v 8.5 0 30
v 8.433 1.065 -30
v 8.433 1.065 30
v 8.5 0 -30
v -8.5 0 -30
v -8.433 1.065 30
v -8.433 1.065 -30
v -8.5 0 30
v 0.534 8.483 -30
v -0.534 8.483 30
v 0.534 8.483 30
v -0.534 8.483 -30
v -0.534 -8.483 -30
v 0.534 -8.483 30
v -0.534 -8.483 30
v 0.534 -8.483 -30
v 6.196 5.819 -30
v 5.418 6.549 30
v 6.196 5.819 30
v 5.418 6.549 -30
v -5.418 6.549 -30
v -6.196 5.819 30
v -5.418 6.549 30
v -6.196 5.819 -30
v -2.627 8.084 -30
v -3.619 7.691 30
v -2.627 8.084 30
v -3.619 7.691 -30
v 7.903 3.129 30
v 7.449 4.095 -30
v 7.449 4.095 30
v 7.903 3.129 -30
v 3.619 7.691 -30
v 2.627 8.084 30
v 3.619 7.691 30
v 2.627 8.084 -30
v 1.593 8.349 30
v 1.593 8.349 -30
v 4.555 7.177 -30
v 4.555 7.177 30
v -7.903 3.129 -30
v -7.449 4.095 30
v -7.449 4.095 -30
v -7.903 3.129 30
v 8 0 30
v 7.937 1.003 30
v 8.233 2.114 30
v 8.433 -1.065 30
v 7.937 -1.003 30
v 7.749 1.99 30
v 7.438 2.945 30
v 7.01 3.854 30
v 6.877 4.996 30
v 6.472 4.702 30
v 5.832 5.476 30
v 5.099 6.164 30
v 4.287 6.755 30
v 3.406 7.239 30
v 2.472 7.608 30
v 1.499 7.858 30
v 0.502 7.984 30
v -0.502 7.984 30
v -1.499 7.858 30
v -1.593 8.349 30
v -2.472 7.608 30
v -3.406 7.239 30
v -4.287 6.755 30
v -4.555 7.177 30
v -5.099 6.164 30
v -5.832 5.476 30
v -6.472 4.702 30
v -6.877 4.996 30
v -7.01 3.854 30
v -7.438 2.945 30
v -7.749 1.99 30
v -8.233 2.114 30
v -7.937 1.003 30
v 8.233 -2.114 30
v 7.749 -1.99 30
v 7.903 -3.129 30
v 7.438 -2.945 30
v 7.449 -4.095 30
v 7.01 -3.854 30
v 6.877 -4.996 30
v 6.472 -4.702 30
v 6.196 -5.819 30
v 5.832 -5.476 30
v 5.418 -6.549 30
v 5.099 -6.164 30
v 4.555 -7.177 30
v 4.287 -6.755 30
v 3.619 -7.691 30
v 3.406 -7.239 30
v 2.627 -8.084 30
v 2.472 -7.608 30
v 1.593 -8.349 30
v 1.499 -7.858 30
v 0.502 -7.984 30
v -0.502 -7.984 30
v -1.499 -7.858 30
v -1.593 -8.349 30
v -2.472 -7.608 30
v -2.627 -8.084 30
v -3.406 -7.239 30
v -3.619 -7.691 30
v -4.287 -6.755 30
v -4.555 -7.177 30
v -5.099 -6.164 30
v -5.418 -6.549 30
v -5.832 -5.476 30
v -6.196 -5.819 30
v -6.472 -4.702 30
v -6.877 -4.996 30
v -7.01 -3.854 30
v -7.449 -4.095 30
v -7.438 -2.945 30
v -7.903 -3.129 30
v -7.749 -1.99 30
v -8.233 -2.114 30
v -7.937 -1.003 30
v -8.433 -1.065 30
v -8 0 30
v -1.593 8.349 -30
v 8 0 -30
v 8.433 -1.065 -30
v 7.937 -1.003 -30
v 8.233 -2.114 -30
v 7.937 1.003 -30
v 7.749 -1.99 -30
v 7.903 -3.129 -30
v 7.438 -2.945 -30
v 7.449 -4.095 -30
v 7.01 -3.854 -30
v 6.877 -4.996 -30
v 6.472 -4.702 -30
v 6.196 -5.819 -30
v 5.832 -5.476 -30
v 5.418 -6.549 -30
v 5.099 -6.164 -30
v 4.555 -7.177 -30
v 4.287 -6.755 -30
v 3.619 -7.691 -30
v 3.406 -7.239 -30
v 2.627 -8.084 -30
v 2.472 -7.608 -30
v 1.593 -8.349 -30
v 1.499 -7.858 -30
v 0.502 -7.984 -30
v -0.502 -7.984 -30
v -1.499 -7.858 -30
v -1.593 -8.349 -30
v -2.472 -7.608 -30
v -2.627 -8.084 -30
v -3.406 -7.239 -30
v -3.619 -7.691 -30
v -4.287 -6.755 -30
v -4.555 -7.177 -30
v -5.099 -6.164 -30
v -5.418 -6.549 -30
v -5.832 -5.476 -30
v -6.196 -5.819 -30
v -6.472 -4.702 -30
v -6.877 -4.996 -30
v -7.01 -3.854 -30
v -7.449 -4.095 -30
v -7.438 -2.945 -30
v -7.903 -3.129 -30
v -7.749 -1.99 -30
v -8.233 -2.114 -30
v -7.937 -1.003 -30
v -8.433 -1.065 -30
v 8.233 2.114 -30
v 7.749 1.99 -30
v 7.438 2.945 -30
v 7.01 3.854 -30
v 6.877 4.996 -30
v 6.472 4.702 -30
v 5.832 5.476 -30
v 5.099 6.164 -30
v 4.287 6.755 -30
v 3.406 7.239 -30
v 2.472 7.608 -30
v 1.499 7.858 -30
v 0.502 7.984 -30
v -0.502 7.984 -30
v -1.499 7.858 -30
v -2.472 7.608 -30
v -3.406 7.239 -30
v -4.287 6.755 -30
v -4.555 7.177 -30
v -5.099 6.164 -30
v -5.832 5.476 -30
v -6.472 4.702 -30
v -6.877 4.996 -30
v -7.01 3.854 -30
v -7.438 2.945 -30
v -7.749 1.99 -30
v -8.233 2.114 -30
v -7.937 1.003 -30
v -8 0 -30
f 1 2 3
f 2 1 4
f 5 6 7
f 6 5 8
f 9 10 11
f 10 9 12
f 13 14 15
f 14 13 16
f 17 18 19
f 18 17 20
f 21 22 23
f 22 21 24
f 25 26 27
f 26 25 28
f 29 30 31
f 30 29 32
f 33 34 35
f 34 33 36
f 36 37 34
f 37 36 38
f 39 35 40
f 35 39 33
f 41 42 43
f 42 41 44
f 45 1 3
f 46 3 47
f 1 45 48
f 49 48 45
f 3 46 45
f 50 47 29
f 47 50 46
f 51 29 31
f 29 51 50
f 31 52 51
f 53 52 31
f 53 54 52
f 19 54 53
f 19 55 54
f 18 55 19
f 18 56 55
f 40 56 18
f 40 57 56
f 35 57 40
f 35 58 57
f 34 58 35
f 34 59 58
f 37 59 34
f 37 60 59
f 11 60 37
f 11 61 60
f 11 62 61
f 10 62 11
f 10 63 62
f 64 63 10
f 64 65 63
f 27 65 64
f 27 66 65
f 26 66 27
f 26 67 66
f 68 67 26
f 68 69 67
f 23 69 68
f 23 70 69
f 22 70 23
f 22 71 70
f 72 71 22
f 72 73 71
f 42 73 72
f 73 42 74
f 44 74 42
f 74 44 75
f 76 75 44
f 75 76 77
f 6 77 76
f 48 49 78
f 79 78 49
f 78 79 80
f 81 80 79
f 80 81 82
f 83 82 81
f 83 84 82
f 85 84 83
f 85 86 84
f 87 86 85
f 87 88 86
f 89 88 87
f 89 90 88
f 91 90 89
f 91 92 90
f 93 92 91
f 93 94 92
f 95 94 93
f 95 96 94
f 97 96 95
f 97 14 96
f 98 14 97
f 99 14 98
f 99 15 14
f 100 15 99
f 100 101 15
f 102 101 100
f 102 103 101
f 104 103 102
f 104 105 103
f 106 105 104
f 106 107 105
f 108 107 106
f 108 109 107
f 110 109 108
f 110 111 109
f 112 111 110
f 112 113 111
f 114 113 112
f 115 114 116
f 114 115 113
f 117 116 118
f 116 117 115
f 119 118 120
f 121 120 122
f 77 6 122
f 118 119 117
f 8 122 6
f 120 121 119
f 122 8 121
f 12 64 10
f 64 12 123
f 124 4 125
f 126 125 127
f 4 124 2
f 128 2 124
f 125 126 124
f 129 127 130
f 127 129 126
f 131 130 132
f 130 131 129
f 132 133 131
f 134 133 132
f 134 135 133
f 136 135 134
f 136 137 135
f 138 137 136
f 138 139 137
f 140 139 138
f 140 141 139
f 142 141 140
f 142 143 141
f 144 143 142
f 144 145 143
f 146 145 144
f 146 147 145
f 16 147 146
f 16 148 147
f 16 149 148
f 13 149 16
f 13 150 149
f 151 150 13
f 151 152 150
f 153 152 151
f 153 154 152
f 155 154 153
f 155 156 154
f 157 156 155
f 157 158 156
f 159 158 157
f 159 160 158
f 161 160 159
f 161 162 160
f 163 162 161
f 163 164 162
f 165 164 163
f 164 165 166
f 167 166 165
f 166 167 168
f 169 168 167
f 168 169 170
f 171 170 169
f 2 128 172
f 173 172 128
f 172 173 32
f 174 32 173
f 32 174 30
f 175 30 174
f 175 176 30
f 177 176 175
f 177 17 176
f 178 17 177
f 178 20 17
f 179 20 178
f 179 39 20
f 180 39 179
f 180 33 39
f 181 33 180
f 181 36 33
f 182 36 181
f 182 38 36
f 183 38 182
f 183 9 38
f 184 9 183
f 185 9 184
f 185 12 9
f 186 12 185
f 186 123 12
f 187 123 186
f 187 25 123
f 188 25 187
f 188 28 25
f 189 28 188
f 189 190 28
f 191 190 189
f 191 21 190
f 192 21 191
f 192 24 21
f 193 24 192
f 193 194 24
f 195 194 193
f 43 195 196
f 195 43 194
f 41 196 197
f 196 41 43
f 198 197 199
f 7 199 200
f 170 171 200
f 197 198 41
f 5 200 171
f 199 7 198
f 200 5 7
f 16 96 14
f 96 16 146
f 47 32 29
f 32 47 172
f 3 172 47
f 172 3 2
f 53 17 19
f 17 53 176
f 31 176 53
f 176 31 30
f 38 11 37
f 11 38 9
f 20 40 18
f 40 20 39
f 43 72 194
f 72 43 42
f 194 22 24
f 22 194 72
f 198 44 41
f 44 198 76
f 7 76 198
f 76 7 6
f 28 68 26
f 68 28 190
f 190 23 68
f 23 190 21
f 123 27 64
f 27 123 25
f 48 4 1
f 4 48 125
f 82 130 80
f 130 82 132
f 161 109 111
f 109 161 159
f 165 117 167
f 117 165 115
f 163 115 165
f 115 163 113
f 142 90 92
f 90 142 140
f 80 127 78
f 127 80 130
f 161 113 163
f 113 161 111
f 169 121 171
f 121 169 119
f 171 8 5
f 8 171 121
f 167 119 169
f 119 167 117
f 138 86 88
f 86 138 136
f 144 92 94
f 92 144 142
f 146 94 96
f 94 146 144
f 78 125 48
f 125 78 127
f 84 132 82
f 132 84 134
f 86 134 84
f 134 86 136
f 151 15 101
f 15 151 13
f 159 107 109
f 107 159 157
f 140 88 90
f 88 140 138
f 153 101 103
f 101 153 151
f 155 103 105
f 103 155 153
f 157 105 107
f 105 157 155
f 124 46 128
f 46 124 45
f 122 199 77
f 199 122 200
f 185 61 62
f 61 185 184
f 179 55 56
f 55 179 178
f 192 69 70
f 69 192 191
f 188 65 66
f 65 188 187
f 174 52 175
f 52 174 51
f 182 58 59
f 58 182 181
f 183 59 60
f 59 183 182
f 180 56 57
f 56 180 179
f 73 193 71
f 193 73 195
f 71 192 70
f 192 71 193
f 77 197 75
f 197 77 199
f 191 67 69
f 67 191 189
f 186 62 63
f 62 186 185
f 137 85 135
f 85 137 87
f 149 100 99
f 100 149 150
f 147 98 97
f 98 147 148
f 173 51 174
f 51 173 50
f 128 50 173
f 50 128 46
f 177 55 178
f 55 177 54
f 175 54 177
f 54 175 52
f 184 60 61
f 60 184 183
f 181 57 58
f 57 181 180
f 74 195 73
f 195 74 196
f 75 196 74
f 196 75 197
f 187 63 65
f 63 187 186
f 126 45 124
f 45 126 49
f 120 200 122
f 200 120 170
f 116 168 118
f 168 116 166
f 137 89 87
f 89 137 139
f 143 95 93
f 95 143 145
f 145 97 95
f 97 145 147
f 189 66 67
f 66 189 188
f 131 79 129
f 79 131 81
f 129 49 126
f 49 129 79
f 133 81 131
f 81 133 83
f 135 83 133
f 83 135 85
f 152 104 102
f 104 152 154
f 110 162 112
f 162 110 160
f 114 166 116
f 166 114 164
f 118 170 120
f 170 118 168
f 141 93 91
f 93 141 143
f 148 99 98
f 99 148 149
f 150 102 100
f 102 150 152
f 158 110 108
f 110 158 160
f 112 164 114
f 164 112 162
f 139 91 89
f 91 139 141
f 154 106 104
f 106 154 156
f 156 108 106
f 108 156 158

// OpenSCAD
$fn = 50;


difference() {
	union() {
		translate(v = [0, 0, -30.0000000000]) {
			cylinder(h = 60, r = 8.5000000000);
		}
	}
	union() {
		translate(v = [0, 0, -100.0000000000]) {
			cylinder(h = 200, r = 8);
		}
	}
}
